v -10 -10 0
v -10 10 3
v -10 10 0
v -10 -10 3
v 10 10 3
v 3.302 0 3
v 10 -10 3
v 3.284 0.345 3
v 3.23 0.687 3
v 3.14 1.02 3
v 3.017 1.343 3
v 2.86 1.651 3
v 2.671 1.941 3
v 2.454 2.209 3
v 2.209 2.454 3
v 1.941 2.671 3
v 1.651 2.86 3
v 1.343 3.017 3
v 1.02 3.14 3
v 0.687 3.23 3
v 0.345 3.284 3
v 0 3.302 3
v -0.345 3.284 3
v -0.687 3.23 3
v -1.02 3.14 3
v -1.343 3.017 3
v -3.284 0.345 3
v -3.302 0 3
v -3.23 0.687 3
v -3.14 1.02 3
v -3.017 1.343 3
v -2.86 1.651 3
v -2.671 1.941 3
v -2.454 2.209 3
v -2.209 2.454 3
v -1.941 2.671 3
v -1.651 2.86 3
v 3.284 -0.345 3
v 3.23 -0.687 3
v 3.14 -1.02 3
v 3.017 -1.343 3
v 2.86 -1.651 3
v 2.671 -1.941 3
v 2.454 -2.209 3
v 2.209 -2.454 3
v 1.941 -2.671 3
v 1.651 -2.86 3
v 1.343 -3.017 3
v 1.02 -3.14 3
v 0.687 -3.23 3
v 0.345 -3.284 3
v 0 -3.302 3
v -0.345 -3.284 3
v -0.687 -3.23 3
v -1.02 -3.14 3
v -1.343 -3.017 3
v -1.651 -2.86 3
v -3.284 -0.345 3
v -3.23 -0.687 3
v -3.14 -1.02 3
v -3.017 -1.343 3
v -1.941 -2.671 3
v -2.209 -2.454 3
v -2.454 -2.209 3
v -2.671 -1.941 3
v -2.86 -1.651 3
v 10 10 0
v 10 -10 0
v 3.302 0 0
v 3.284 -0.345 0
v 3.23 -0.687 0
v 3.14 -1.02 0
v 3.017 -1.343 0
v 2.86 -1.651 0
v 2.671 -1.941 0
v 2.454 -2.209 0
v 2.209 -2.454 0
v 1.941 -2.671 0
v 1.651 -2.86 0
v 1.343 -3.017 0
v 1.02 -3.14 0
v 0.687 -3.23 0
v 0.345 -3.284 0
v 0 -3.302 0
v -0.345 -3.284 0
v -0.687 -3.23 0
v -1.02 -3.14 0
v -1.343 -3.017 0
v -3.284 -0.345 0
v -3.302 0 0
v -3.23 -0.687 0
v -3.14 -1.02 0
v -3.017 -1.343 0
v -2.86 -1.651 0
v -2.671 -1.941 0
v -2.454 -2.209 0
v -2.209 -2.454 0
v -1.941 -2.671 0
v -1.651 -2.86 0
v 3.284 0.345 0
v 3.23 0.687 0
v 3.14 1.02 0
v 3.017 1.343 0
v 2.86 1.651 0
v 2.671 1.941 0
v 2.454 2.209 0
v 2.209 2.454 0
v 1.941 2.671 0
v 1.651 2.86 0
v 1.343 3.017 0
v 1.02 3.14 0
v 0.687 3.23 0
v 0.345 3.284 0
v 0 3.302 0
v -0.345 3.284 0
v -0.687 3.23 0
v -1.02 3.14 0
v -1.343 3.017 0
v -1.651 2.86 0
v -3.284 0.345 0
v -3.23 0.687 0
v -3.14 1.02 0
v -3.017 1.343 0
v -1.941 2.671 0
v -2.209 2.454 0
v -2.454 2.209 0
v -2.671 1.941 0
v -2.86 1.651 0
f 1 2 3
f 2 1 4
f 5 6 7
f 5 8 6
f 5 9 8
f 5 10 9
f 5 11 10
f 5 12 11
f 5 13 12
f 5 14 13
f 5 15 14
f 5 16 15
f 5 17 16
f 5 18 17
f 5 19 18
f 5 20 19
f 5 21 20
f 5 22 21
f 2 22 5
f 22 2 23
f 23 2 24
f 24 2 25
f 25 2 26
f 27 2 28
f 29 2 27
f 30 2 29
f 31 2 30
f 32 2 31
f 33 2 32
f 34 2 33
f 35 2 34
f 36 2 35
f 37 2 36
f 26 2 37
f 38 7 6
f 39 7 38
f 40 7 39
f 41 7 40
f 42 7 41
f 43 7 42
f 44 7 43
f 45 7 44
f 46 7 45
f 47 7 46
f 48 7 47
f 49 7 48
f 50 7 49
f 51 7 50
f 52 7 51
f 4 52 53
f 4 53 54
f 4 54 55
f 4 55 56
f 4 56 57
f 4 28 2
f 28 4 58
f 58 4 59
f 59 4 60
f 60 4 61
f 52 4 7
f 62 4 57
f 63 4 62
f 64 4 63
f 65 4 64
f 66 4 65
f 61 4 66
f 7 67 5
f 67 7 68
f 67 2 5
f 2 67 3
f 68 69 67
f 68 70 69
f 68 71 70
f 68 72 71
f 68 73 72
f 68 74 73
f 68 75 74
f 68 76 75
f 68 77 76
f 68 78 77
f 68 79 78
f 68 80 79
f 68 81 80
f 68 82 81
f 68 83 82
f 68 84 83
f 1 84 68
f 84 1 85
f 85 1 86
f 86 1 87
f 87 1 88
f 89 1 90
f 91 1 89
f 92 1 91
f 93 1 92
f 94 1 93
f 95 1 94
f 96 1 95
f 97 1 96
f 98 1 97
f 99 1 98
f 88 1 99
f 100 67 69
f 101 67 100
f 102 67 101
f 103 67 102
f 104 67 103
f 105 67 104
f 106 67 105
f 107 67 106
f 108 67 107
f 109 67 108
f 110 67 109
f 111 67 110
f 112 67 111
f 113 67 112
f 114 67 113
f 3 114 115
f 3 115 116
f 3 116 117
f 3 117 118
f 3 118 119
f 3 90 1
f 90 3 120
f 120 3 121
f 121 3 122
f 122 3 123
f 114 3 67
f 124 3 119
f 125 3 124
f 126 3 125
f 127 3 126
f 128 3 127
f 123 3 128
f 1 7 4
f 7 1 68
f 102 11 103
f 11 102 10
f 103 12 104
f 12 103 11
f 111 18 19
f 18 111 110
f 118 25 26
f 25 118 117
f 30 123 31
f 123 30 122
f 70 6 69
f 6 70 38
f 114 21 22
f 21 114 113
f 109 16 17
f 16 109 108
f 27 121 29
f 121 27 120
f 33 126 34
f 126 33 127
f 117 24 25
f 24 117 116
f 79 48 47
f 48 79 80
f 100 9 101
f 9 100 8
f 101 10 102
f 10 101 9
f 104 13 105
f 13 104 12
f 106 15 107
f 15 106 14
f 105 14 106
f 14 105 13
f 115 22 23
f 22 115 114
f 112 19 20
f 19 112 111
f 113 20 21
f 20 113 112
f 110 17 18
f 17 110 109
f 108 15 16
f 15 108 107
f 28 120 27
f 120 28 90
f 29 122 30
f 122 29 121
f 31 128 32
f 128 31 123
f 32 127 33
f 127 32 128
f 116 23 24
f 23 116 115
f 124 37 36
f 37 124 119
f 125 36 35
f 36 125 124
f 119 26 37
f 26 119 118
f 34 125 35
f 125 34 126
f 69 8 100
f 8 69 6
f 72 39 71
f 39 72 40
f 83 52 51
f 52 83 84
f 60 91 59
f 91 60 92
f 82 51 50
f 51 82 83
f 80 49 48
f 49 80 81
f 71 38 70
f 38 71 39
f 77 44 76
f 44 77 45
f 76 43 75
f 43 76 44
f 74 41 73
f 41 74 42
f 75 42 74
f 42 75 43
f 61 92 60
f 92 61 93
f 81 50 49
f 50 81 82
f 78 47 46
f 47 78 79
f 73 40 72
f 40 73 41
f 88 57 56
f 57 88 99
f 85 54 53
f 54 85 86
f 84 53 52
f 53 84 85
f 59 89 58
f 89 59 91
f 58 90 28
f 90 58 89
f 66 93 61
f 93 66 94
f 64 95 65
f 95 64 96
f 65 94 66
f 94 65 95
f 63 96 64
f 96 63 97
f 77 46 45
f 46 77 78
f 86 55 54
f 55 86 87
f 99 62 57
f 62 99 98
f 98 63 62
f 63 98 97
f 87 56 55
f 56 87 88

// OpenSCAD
// SMA Connector Thickness Test Plate
// Purpose: Verify if 3mm wall thickness allows SMA connector nut engagement.

/* [Dimensions] */
// User specified: 2cm x 2cm square, 3mm thick.
// Using specific millimeter values for the test, but keeping INCH constant for hole sizing consistency
INCH = 25.4;

width = 20;     // 2cm
length = 20;    // 2cm
thickness = 3;  // 3mm

/* [Hole Dimensions] */
// From main project (all-seeing-eye.1.6.scad): sma_hole_diameter = 0.26 * INCH
sma_hole_diameter = 0.26 * INCH; 

/* [Rendering resolution] */
$fn = 60;

module test_plate() {
    difference() {
        // 1. Positive volume (The Plate)
        // Centered on X/Y, sitting on Z=0
        translate([0, 0, thickness/2])
            cube([width, length, thickness], center=true);
        
        // 2. Negative volume (SMA Hole)
        // Cylinder centered at origin, extending through the plate
        translate([0, 0, -1])
            cylinder(h = thickness + 2, d = sma_hole_diameter);
    }
}

test_plate();
